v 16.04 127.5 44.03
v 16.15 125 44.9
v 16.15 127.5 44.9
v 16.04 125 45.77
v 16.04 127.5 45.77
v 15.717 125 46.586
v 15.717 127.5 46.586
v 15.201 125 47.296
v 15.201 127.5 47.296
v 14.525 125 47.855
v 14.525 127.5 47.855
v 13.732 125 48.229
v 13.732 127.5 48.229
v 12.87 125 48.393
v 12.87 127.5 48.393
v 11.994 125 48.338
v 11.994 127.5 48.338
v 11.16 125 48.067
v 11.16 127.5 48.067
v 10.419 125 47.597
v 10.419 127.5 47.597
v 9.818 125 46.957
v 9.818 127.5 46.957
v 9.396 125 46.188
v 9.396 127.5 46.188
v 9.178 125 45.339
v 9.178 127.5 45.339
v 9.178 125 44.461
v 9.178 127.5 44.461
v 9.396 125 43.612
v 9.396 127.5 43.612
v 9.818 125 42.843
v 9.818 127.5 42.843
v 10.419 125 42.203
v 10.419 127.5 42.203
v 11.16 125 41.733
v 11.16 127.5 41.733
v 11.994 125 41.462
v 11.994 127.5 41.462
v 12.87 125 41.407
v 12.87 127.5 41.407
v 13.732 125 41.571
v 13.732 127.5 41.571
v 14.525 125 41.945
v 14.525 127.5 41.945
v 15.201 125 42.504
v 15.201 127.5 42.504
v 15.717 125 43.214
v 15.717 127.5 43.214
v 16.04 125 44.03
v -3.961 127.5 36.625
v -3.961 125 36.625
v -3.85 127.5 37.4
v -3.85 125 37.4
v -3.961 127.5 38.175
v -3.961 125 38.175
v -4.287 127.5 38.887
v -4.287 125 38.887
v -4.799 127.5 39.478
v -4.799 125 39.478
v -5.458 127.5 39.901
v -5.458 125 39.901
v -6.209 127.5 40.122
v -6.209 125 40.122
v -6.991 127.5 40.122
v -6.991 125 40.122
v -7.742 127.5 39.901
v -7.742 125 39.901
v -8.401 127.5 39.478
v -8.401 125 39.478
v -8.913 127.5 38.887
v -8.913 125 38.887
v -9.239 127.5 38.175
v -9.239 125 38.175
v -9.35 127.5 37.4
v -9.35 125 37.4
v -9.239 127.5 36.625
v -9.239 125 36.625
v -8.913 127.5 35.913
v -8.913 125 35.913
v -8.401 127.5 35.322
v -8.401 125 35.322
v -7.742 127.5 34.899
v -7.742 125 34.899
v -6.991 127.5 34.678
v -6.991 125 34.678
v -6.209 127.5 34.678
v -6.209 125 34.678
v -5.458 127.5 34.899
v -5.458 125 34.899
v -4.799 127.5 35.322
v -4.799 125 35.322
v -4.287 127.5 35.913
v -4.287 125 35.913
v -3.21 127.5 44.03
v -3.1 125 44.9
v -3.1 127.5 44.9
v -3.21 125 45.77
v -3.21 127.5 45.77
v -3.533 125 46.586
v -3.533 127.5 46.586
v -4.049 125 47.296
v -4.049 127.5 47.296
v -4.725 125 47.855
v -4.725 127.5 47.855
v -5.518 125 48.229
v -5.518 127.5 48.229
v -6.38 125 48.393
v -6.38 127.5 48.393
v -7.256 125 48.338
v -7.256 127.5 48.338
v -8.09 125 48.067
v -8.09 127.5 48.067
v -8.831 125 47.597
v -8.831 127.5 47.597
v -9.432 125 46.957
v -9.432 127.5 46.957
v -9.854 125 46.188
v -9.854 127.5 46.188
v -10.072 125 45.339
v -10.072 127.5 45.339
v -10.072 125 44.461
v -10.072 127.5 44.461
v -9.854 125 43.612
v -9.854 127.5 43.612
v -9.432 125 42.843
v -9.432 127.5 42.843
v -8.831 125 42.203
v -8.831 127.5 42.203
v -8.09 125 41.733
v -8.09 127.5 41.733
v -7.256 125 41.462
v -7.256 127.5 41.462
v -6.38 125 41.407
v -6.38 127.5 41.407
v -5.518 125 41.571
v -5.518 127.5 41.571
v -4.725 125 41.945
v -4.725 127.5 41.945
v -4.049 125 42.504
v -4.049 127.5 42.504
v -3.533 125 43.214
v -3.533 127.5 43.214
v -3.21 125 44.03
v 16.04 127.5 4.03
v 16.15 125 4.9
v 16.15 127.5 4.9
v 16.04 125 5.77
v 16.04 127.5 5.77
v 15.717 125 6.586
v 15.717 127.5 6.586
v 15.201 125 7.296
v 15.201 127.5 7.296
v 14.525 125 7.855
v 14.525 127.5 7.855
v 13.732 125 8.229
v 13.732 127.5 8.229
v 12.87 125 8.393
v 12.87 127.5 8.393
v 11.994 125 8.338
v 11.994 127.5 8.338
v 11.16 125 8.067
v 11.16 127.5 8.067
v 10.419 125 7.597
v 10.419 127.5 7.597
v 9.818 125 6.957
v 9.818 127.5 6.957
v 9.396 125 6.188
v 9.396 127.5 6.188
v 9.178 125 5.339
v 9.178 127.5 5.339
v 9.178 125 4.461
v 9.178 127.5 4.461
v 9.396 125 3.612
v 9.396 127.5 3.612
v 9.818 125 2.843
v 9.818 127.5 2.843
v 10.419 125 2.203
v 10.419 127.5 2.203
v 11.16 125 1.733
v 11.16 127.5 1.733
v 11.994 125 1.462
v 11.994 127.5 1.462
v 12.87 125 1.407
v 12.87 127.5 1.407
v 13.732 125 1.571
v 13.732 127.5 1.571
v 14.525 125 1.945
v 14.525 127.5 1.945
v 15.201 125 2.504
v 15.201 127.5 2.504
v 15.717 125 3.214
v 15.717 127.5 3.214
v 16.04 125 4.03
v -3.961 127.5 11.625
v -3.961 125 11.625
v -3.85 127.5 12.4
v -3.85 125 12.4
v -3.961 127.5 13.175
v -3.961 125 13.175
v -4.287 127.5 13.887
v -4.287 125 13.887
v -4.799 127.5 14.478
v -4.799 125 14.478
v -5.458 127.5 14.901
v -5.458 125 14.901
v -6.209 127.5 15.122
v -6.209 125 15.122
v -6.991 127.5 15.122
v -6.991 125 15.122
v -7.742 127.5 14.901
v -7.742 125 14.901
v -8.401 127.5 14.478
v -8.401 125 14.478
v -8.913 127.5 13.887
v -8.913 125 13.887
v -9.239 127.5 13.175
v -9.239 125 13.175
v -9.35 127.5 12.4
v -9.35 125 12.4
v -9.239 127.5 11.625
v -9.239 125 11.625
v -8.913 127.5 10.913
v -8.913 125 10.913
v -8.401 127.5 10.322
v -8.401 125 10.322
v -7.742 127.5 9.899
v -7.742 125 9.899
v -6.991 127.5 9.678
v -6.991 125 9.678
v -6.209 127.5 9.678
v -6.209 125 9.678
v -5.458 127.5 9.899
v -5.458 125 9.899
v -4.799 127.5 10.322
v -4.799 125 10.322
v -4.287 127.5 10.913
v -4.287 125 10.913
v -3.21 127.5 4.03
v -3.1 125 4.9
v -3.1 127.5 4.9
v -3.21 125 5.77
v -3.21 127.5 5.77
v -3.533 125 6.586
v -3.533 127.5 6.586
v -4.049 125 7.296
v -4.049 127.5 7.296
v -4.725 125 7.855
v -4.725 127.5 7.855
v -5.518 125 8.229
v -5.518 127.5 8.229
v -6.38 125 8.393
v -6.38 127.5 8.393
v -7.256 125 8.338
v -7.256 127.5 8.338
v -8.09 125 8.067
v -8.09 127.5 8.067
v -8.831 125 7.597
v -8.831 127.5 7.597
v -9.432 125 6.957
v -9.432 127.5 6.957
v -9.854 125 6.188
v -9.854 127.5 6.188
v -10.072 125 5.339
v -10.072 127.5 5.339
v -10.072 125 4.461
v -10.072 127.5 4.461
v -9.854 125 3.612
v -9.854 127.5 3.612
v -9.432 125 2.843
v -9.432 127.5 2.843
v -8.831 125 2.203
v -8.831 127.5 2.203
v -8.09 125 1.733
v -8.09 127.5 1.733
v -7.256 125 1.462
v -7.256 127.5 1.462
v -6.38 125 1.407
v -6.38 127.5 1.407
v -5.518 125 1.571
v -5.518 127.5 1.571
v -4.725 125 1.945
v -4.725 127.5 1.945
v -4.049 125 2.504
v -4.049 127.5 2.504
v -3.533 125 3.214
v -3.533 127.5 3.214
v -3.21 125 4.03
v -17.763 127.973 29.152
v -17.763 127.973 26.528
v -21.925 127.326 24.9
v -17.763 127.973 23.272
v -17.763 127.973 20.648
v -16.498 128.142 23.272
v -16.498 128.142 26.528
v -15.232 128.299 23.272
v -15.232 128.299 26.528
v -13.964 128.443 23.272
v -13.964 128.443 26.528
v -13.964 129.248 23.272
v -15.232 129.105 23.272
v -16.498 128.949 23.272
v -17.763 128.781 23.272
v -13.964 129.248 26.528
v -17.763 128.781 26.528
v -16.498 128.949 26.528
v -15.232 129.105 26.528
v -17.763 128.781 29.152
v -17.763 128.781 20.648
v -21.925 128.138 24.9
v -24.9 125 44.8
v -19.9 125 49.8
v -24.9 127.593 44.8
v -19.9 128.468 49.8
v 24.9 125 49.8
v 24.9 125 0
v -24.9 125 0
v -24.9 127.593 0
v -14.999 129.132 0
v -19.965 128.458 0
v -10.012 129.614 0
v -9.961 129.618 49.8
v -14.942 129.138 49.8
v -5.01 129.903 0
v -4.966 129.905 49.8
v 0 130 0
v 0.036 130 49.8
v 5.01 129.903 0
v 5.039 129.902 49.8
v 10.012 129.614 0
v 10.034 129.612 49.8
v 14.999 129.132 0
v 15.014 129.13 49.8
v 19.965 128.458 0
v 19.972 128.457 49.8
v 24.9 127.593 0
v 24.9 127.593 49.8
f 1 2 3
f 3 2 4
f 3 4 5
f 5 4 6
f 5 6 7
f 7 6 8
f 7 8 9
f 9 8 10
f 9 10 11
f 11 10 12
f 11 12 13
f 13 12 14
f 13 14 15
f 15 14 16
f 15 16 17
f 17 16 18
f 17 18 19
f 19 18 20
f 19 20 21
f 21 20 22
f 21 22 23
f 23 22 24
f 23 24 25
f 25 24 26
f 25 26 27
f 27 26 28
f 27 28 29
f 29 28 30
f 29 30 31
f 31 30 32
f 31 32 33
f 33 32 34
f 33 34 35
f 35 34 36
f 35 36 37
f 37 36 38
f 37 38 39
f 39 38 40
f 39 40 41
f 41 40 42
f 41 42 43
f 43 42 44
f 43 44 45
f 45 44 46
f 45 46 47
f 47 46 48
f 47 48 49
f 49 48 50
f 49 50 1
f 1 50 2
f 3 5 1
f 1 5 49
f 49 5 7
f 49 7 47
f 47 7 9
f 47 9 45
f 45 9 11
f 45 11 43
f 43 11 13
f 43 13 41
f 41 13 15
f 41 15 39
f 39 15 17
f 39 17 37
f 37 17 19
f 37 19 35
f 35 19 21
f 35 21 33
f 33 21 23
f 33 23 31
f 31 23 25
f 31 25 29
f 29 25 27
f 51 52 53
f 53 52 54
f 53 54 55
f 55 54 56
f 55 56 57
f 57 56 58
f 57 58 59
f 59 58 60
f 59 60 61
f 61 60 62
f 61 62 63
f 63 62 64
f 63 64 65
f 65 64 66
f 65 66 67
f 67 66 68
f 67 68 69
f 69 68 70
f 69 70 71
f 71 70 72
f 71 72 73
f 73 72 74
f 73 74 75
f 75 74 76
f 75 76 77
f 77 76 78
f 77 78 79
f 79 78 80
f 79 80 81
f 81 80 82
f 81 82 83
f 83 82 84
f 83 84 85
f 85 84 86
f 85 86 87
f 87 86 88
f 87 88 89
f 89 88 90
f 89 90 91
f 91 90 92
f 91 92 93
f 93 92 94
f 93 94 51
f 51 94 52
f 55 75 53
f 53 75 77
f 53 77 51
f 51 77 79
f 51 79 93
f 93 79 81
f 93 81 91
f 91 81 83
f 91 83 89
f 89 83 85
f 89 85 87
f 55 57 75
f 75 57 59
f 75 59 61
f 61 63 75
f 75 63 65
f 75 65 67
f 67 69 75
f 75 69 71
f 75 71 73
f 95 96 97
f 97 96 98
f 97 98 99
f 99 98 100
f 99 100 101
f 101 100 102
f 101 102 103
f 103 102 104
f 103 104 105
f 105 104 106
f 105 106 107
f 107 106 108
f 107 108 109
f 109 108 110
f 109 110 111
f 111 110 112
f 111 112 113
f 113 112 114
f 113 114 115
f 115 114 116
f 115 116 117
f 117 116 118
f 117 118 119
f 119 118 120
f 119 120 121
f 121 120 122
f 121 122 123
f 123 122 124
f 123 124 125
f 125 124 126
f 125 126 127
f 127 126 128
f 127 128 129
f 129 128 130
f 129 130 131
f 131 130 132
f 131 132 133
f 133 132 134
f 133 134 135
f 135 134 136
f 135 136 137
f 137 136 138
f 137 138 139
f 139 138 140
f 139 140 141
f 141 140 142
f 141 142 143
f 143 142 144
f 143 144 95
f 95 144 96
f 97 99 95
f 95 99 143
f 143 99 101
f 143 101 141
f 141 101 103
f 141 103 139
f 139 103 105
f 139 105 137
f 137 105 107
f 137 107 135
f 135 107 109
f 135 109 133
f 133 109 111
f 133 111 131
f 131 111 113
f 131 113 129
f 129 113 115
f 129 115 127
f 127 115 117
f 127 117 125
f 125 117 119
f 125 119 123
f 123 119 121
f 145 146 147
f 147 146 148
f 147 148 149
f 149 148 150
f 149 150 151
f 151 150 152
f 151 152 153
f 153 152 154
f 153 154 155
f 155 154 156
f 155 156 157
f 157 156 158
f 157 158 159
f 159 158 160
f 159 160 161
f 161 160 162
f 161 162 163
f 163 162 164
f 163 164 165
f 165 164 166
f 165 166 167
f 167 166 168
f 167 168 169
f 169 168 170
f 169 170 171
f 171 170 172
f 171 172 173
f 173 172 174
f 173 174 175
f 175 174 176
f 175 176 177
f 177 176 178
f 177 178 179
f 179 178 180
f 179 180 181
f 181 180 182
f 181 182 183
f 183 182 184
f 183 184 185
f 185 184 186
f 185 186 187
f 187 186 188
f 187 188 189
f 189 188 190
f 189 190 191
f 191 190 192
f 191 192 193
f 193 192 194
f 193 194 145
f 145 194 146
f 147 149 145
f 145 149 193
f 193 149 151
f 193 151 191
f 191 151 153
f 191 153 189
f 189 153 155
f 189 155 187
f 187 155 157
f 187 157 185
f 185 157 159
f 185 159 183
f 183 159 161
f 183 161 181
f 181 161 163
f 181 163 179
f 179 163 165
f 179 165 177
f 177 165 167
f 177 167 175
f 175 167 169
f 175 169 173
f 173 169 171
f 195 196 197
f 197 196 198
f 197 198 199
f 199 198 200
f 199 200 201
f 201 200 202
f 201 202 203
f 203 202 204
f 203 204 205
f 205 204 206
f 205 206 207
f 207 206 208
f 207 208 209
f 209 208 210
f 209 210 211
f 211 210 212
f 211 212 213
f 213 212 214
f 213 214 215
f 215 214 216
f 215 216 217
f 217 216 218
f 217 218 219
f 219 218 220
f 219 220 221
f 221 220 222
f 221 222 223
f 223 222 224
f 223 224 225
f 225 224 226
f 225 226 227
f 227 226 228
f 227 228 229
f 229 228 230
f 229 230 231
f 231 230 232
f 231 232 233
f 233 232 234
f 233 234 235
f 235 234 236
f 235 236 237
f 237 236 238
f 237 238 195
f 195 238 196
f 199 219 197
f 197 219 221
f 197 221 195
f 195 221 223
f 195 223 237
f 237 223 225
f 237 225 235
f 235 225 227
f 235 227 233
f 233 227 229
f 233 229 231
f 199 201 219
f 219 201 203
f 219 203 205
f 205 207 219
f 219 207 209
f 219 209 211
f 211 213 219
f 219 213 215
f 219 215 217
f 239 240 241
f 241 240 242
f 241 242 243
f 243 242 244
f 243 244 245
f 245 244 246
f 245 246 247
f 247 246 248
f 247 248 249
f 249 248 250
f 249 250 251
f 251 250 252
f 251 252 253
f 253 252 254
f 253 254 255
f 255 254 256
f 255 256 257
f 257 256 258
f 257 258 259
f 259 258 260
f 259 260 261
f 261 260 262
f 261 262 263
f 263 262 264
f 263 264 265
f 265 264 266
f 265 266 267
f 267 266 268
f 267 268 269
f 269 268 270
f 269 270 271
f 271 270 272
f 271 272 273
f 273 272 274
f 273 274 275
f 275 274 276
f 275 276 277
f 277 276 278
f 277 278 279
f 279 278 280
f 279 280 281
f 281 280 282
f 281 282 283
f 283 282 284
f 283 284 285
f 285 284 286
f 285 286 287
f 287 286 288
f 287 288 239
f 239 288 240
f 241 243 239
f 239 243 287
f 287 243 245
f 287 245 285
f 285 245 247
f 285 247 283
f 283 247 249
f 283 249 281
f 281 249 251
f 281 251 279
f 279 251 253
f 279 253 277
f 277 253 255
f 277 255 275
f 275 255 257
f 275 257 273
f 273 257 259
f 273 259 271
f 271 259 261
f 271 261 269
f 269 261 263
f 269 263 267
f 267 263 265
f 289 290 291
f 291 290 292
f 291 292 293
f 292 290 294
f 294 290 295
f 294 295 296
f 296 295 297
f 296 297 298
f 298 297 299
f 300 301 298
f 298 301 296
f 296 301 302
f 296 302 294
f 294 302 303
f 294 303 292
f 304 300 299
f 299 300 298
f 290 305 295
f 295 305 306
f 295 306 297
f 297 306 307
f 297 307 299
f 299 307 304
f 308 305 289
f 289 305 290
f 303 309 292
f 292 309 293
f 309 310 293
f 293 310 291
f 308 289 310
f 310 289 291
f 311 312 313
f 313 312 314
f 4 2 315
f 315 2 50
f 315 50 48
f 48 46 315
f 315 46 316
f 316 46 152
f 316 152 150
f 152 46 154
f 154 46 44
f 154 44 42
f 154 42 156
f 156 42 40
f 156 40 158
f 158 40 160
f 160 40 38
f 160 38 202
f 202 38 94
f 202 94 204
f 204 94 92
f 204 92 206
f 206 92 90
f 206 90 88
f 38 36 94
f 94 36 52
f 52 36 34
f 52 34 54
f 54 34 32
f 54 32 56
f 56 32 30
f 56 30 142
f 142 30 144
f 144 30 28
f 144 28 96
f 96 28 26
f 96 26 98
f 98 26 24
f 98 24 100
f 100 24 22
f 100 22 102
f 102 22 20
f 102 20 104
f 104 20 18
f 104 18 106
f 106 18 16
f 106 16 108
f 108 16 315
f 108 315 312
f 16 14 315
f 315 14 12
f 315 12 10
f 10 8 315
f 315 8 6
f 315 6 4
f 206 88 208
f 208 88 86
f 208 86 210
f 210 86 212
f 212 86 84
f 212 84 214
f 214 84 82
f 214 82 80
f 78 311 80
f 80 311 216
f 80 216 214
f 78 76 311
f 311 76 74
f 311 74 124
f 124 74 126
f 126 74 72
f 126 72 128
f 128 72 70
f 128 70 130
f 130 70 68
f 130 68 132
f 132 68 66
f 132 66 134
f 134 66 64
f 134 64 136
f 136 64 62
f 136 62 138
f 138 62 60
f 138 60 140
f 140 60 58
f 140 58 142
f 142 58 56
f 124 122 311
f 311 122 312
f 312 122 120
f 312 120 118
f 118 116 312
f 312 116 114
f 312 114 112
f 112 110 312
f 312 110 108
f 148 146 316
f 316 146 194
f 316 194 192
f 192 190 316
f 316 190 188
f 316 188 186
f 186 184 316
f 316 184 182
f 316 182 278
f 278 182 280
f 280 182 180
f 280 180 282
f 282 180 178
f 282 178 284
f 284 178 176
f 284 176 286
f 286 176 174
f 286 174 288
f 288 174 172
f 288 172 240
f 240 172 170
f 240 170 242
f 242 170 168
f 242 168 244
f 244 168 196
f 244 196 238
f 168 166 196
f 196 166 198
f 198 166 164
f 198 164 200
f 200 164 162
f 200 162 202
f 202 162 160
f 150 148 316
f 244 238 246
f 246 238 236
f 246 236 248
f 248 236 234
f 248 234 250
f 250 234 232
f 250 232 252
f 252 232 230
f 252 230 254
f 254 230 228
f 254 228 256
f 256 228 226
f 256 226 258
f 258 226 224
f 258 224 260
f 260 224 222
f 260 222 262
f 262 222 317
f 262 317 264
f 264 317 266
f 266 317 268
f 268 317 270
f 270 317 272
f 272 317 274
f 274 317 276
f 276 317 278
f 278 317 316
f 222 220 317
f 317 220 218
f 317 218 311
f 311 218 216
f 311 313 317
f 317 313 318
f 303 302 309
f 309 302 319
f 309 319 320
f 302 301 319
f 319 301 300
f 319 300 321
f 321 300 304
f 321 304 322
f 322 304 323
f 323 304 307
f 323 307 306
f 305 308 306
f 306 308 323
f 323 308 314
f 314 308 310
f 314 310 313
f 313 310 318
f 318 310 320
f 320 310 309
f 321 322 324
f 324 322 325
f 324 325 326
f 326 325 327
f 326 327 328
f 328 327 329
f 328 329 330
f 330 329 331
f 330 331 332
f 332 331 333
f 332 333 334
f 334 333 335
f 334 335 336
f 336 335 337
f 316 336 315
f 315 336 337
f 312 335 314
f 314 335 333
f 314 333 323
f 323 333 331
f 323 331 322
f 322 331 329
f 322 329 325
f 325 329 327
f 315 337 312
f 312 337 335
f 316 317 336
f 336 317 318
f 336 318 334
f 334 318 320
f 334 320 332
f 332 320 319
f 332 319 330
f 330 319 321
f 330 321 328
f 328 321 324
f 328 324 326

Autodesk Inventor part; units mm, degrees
ref_plane "YZ Plane" through (0, 0, 0) normal (1, 0, 0) x (0, 1, 0)
sketch "Sketch1" plane through (0, 0, 0) normal (0, 0, 1) x (1, 0, 0)
  line L0 (-24.9, 127.5931) -> (-24.9, 125)
  line L1 (-24.9, 125) -> (24.9, 125)
  line L2 (24.9, 125) -> (24.9, 127.5931)
  arc A0 (24.9, 127.5931) -> (-24.9, 127.5931) centre (0, 0) ccw
  point P0 (0, 130)
  dimension "d0" = 130
  dimension "d1" = 5
  dimension "d2" = 49.8
extrude "Extrusion1" add sketch "Sketch1" along normal blind 49.8
chamfer "Chamfer1" distance 5 angle 45 1 edges at (-24.9, 126.2965, 49.8)
ref_plane "Work Plane1" through (0, 130, 0) normal (0, 1, 0) x (-1, 0, 0)
sketch "Sketch2" plane through (0, 130, 0) normal (0, 1, 0) x (-1, 0, 0)
  line L0 (19.9, 49.8) -> (-24.9, 49.8) construction
  line L1 (-24.9, 0) -> (-24.9, 49.8) construction
  line L2 (-24.9, 24.9) -> (31.0612, 24.9) construction
  line L3 (21.9246, 24.9) -> (17.7633, 29.1517)
  line L4 (17.7633, 29.1517) -> (17.7633, 26.5283)
  line L5 (17.7633, 26.5283) -> (13.964, 26.5283)
  line L6 (13.964, 26.5283) -> (13.964, 24.9)
  line L7 (21.9246, 24.9) -> (17.7633, 20.6483)
  line L8 (17.7633, 20.6483) -> (17.7633, 23.2717)
  line L9 (17.7633, 23.2717) -> (13.964, 23.2717)
  line L10 (13.964, 23.2717) -> (13.964, 24.9)
  point P0 (0, 0)
emboss "Emboss1" sketch "Sketch2" operation cut depth 0.8 direction (0, -1, 0)
sketch "Sketch3" plane through (-24.9, 125, 0) normal (0, -1, 0) x (1, 0, 0)
  line L0 (0, 0) -> (49.8, 0) projected
  line L1 (49.8, 0) -> (49.8, 49.8) construction
  line L2 (49.8, 24.9) -> (6.096, 24.9) construction
  circle A0 centre (18.3, 4.9) radius 3.5
  circle A1 centre (37.55, 4.9) radius 3.5
  circle A2 centre (18.3, 12.4) radius 2.75
  point P0 (24.9, 0)
  dimension "d20" = 7
  dimension "d21" = 7
  dimension "d22" = 20
  dimension "d23" = 20
  dimension "d24" = 12.25
  dimension "d25" = 19.25
  dimension "d26" = 5.5
  dimension "d27" = 12.5
extrude "Extrusion2" cut sketch "Sketch3" against normal blind 2.5
ref_plane "Work Plane2" through (0, 0, 24.9) normal (0, 0, -1) x (-1, 0, 0)
mirror "Mirror1" about plane through (0, 0, 24.9) normal (0, 0, -1) of "Extrusion2"
properties part number "power_signal_socket_cap"
